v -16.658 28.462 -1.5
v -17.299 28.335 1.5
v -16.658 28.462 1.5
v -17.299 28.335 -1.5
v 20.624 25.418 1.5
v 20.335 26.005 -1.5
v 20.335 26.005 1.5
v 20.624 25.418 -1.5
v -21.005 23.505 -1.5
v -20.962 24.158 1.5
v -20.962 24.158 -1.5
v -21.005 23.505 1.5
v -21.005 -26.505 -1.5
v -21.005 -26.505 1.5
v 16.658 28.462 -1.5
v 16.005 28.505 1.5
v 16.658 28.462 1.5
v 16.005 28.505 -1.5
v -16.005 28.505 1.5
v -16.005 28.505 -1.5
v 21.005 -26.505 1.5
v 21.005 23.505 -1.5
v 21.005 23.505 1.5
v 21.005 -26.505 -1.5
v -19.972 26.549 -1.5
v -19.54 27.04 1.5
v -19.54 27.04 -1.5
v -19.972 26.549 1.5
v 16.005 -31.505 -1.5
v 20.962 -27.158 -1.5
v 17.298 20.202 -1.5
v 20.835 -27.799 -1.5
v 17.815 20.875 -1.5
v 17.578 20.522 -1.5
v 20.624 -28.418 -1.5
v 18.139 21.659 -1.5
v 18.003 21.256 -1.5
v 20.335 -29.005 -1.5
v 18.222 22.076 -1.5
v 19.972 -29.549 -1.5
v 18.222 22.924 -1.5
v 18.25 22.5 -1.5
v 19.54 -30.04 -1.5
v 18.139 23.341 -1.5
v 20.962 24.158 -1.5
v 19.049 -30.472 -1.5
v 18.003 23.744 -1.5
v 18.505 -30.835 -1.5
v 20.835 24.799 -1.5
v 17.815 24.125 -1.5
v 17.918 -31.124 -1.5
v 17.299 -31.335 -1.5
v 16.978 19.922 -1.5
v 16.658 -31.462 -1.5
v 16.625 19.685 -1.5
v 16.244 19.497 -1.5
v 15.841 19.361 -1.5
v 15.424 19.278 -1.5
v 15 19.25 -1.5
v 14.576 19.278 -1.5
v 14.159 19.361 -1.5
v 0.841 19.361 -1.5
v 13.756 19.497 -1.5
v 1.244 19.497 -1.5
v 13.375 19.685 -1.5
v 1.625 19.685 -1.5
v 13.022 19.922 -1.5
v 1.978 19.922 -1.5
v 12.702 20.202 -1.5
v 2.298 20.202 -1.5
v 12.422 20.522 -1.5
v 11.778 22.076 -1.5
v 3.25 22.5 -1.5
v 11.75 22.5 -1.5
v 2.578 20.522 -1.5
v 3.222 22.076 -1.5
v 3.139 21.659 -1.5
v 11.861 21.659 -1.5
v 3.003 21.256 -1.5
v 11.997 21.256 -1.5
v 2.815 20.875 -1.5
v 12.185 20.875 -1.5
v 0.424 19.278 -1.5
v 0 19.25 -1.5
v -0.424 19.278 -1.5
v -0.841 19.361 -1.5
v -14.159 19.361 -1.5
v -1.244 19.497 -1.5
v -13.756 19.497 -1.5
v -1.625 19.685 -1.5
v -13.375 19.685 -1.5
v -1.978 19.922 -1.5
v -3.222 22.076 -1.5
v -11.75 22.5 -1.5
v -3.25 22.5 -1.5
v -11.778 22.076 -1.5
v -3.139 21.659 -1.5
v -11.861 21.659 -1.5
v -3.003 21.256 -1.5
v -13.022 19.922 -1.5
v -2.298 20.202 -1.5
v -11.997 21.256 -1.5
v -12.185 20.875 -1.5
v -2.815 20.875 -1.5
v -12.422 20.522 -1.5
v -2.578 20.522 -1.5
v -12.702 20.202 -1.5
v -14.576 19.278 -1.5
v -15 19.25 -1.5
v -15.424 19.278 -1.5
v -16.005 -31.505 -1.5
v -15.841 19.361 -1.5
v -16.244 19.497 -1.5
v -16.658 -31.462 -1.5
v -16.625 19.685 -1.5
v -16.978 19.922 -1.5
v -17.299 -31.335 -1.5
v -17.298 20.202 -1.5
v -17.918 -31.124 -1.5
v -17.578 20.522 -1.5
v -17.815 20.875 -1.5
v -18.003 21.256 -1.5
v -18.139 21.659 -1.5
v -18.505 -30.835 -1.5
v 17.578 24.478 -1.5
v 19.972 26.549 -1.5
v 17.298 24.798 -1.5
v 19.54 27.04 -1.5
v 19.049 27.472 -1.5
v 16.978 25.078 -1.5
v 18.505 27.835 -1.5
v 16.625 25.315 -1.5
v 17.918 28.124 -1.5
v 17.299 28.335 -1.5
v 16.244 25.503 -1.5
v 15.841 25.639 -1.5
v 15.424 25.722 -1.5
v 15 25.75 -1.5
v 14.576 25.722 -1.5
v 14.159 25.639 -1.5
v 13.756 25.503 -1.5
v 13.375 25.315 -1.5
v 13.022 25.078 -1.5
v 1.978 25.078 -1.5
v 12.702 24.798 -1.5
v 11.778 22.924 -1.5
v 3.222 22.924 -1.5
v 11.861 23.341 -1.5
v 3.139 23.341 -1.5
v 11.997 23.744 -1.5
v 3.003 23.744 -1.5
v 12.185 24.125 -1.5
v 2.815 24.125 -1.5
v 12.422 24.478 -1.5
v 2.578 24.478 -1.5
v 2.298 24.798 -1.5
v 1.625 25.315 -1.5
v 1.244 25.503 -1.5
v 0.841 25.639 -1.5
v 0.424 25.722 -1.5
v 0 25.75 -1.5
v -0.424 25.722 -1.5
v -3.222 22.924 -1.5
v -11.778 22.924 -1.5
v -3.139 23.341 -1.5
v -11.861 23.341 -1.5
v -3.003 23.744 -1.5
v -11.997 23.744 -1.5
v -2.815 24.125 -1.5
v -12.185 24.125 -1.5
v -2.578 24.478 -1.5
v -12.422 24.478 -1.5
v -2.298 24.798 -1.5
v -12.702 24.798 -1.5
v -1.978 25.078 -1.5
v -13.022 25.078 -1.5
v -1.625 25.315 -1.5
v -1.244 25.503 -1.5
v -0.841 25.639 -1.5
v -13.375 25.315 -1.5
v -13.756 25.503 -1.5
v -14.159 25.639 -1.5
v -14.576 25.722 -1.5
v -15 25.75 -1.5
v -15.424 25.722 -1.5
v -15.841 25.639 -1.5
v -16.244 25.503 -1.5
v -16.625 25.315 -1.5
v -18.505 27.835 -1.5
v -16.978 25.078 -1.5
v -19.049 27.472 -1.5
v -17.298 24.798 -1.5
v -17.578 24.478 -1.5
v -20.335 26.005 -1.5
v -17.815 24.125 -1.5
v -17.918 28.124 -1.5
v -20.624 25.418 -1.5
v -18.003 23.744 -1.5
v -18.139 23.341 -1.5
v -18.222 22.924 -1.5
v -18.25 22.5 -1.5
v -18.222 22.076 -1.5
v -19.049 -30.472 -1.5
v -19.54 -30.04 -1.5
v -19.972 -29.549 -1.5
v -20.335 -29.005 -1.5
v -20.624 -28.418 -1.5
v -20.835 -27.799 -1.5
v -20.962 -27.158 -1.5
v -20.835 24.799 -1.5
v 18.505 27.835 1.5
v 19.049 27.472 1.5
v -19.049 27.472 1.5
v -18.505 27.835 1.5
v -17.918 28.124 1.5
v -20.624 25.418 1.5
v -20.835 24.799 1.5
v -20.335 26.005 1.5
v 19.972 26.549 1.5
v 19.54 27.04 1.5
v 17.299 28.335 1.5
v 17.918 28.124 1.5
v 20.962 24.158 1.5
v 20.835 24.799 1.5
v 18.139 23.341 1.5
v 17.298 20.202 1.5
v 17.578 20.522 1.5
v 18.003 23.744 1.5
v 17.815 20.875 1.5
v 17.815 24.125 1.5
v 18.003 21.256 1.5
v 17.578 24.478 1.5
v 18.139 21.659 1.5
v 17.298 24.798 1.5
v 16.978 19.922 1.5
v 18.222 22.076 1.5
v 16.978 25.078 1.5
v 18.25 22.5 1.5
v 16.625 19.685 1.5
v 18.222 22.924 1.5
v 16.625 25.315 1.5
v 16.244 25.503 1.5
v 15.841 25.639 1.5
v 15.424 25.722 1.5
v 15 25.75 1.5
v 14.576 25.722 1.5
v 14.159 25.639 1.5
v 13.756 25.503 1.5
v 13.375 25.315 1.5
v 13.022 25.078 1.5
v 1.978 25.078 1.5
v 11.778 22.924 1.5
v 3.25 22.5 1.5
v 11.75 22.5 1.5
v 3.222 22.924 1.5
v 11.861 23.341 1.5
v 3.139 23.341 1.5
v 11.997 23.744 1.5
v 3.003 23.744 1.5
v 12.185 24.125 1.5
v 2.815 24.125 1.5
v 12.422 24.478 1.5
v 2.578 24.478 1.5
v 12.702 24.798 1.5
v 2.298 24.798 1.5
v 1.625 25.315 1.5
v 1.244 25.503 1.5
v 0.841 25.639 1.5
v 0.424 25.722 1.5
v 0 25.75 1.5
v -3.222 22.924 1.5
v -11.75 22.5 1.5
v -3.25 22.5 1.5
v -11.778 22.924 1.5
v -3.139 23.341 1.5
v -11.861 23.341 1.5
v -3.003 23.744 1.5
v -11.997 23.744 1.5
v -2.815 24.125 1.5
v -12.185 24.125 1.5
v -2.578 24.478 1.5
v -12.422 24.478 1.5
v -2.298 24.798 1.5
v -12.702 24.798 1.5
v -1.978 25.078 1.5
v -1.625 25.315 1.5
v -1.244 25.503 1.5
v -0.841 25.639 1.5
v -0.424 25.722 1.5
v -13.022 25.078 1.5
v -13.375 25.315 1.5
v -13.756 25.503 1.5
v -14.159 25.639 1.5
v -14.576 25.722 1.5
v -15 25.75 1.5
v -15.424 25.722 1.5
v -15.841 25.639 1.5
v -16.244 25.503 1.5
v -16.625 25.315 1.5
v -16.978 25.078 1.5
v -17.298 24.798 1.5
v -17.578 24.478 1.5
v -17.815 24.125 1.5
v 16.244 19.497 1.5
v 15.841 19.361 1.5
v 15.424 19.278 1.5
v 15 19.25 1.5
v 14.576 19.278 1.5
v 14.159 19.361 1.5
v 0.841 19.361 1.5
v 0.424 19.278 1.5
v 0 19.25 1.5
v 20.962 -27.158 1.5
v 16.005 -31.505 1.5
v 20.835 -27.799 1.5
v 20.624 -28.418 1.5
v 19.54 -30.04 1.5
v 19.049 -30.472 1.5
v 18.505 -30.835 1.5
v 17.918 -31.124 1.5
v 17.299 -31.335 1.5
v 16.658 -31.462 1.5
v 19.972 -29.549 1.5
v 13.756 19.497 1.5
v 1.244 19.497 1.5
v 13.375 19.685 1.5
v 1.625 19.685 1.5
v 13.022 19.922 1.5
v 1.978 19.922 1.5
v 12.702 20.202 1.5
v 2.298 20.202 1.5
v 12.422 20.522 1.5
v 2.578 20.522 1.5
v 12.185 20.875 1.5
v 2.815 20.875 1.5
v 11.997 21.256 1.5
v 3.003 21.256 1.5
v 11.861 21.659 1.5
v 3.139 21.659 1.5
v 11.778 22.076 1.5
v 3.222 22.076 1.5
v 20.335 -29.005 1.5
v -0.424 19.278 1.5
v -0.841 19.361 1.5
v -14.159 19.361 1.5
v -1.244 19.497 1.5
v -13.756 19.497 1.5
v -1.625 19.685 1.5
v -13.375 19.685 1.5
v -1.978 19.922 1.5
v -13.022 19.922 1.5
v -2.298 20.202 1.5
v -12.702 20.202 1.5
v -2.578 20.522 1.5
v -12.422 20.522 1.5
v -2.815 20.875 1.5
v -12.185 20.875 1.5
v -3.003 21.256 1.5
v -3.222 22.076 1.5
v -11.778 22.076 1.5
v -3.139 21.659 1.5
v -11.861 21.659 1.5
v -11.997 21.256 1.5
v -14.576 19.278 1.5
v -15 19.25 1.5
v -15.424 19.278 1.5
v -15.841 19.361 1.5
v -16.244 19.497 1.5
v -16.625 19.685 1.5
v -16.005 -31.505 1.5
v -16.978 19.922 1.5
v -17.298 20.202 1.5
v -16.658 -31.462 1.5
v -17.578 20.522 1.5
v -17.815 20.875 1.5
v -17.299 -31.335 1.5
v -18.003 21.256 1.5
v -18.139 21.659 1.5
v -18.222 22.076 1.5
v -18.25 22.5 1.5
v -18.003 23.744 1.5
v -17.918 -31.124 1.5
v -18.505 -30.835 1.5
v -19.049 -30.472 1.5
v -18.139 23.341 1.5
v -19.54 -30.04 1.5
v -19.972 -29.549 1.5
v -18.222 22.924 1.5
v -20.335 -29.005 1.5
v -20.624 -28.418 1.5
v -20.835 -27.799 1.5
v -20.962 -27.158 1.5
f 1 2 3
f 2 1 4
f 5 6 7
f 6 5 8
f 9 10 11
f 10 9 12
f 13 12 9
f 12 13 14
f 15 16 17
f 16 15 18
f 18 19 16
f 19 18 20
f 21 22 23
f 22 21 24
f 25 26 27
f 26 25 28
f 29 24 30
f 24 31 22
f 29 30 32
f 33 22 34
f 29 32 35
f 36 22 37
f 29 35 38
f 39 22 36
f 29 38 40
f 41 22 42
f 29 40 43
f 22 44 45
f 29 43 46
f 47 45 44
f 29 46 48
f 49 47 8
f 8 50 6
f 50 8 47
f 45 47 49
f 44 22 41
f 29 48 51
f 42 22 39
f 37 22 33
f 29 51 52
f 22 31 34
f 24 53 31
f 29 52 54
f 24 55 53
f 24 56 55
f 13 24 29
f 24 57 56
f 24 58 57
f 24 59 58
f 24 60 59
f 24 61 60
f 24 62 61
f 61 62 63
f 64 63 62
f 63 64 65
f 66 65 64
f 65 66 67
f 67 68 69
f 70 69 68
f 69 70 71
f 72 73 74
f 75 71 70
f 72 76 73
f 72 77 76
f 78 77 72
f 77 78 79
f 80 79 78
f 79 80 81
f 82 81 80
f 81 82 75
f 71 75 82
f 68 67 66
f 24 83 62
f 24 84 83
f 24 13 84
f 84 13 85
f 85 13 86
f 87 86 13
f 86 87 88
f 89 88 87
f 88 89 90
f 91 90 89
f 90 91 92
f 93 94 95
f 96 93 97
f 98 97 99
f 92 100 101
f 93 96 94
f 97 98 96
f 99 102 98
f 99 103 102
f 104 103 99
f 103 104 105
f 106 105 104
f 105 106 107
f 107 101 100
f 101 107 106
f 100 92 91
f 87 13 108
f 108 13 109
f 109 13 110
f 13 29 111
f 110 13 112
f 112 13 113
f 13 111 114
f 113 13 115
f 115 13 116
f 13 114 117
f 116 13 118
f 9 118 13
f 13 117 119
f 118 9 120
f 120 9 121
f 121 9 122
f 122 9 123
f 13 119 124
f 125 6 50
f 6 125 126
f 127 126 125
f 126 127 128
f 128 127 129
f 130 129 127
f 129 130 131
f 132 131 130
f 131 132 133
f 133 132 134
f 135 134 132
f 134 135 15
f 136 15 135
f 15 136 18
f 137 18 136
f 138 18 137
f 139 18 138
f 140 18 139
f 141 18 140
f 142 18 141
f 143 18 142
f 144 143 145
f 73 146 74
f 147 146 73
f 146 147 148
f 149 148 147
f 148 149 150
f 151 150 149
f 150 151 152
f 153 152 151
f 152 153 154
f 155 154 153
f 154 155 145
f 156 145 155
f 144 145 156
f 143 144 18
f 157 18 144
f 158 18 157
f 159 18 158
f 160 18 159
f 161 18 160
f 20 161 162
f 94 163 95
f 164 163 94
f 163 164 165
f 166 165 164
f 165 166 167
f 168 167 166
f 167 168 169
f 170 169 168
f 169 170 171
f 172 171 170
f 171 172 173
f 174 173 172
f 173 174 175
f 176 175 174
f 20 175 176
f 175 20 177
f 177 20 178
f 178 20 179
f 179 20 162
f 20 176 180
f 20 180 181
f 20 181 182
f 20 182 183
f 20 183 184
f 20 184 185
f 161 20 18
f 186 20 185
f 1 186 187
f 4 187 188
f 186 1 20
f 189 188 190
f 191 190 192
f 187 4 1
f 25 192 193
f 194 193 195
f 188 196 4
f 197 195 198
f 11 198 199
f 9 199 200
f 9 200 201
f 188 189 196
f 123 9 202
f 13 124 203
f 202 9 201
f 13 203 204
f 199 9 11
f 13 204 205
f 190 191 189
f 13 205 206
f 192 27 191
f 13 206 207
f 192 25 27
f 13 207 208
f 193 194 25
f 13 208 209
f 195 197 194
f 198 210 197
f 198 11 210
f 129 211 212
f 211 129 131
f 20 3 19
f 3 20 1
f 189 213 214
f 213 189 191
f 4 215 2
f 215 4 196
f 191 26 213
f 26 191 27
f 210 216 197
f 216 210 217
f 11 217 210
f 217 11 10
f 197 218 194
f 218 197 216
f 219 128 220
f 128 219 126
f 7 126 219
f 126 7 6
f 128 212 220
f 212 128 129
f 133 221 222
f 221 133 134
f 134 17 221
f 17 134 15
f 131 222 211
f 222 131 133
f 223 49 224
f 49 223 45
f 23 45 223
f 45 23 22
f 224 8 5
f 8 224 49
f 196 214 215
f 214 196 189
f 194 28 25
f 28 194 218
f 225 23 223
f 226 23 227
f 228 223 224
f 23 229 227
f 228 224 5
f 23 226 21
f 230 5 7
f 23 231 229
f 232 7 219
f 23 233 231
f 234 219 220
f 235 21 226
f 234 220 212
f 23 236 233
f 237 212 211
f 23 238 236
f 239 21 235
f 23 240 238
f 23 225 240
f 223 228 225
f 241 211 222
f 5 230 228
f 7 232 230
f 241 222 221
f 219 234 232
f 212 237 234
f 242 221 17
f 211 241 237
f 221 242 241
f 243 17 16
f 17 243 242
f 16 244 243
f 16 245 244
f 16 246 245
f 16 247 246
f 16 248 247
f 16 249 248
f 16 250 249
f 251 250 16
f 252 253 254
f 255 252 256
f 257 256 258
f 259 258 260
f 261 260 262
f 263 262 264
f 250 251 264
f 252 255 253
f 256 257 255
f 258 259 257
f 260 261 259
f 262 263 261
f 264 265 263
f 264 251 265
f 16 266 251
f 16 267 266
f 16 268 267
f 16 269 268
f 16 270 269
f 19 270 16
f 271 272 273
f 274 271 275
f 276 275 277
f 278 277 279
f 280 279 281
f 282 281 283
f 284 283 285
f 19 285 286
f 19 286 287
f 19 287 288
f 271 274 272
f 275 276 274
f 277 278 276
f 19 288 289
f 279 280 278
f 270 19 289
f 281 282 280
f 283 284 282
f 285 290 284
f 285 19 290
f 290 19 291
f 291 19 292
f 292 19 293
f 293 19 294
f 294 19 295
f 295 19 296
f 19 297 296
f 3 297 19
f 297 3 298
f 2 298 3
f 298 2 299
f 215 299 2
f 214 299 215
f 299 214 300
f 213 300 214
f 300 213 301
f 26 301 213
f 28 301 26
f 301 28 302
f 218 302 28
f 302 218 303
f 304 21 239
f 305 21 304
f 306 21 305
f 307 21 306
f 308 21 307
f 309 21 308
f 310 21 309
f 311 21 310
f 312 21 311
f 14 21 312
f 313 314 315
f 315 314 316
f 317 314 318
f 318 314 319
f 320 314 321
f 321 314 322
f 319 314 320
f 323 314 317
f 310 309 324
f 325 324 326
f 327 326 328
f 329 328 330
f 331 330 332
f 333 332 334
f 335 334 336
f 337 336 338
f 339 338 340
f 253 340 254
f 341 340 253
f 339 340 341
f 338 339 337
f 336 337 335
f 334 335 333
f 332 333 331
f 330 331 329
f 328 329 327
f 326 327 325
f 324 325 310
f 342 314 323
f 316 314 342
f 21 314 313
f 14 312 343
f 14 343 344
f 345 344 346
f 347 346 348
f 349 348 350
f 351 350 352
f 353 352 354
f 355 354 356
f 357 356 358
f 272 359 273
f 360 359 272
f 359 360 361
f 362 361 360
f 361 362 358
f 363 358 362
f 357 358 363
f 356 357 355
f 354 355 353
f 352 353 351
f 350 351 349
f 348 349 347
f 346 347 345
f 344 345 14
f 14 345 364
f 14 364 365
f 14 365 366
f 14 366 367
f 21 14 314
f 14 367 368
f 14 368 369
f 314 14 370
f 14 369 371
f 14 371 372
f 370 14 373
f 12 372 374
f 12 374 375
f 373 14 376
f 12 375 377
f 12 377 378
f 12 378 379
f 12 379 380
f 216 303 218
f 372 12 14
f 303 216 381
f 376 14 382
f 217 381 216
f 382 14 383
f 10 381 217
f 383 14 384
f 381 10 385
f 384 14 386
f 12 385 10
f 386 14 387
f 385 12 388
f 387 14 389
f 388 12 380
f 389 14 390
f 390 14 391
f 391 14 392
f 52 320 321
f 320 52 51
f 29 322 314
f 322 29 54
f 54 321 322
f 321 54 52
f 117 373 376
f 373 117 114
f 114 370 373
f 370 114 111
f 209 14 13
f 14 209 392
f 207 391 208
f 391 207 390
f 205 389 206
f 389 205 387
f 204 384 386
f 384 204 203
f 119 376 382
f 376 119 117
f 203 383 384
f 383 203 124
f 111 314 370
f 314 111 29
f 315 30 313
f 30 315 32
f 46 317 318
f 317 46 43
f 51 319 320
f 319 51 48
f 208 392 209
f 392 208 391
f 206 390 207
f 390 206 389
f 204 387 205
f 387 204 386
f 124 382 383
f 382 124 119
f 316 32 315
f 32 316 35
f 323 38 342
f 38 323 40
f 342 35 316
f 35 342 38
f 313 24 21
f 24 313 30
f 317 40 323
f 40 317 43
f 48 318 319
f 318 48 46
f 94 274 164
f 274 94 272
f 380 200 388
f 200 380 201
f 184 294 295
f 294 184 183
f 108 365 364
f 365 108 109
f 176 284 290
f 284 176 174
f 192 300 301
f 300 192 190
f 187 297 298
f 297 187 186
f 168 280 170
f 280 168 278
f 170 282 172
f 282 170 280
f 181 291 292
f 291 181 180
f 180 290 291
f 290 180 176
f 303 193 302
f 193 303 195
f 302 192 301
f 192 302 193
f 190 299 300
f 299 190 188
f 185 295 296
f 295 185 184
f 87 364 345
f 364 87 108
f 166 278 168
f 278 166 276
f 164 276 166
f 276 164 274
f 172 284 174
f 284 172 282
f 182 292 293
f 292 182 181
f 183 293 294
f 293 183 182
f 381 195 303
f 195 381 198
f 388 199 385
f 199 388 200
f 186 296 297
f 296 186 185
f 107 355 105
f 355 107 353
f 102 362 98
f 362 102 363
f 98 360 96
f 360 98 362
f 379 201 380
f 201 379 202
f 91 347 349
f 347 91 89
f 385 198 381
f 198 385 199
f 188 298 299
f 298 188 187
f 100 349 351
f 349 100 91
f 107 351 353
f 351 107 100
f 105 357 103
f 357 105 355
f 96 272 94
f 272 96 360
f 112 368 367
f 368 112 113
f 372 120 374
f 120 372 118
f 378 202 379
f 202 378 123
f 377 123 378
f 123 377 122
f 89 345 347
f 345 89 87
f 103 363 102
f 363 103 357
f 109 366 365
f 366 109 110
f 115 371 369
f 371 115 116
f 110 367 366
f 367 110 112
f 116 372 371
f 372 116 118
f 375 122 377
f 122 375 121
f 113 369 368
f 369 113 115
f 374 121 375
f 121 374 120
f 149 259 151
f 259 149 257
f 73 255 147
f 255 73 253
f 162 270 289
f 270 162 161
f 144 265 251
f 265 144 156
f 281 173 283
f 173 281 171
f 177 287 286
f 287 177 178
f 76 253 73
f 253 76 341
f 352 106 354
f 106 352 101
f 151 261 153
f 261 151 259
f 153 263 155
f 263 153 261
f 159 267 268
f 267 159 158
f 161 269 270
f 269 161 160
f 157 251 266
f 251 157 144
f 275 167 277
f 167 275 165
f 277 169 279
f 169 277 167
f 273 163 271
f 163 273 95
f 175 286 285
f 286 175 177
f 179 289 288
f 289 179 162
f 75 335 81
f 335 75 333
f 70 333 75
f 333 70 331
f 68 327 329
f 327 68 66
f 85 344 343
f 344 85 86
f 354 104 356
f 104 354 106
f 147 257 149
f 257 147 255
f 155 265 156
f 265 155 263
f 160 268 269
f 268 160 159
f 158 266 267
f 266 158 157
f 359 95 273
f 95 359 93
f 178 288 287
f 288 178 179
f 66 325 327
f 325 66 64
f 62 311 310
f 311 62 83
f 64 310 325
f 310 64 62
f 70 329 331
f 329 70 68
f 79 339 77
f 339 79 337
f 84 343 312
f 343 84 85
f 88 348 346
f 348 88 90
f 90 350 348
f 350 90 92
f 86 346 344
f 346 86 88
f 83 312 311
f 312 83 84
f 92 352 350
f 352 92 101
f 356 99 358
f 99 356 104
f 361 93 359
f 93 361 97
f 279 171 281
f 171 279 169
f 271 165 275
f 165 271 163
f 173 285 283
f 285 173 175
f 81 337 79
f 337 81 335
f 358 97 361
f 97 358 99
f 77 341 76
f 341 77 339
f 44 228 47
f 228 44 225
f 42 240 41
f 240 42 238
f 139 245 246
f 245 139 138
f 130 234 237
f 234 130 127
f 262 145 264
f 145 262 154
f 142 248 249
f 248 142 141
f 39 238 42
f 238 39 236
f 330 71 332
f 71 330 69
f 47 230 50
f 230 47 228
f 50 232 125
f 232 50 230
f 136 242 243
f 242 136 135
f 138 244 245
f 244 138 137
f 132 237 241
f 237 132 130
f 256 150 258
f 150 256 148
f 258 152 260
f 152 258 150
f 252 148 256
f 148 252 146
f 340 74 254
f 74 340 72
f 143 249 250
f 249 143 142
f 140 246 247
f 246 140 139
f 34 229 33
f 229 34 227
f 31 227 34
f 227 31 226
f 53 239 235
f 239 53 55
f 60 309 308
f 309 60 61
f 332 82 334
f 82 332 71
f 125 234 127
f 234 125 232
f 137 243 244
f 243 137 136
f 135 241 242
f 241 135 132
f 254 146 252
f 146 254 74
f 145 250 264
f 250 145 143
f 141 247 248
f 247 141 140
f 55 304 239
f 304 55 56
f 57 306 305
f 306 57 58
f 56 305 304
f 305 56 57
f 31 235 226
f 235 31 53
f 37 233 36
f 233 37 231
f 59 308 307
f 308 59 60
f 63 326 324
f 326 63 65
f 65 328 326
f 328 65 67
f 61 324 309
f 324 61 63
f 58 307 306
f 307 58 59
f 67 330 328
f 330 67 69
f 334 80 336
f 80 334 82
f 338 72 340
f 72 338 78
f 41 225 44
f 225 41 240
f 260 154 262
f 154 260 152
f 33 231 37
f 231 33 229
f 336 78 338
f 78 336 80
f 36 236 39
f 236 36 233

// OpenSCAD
// Generated by SolidPython 1.1.3 on 2022-09-15 14:54:10
$fn = 48;


difference() {
	union() {
		color(alpha = 1.0000000000, c = "Gold") {
			translate(v = [0, 0, 1.5000000000]) {
				rotate(a = [0, 0, 0]) {
					translate(v = [0, 0, -3]) {
						linear_extrude(height = 3) {
							offset(r = 5) {
								square(center = true, size = [32.0100000000, 47.0100000000]);
							}
						}
					}
				}
			}
		}
		color(alpha = 1.0000000000, c = "Gold") {
			translate(v = [0, -3, 1.5000000000]) {
				rotate(a = [0, 0, 0]) {
					translate(v = [0, 0, -3]) {
						linear_extrude(height = 3) {
							offset(r = 5) {
								square(center = true, size = [32.0100000000, 47.0100000000]);
							}
						}
					}
				}
			}
		}
	}
	union() {
		color(alpha = 1.0000000000, c = "Gold") {
			translate(v = [-15.0000000000, 22.5000000000, 0]) {
				rotate(a = [0, 0, 0]) {
					translate(v = [0, 0, -250]) {
						cylinder(h = 500, r = 3.2500000000);
					}
				}
			}
		}
		color(alpha = 1.0000000000, c = "Gold") {
			translate(v = [0.0000000000, 22.5000000000, 0]) {
				rotate(a = [0, 0, 0]) {
					translate(v = [0, 0, -250]) {
						cylinder(h = 500, r = 3.2500000000);
					}
				}
			}
		}
		color(alpha = 1.0000000000, c = "Gold") {
			translate(v = [15.0000000000, 22.5000000000, 0]) {
				rotate(a = [0, 0, 0]) {
					translate(v = [0, 0, -250]) {
						cylinder(h = 500, r = 3.2500000000);
					}
				}
			}
		}
	}
}
/***********************************************
*********      SolidPython code:      **********
************************************************
 
import subprocess

from solid.objects import *
from solid import scad_render_to_file, scad_render

import math

import os

##################################################################################################################################################
##################################################################################################################################################
##################################################################################################################################################
##################################################################################################################################################
######  DIMENSION STUFF
##################################################################################################################################################
##################################################################################################################################################
##################################################################################################################################################
##################################################################################################################################################


mode = "3DPR"
#mode = "LAZE"
#mode = "TURE"
#mode = ""


######  Countersunk
countersunkM = []
WIDTH = 0
DEPTH = 1
countersunkM1width = 0; countersunkM1depth = 0; countersunkM2width = 0; countersunkM2depth = 0
countersunkM3width = 0
countersunkM3depth = 0
countersunkM4width = 0
countersunkM4depth = 0
countersunkM5width = 0
countersunkM5depth = 0
countersunkM6width = 0
countersunkM6depth = 0

######  Holes
holeM = []
holeM1 = 0
holeM2 = 0
holeM3 = 0
holeM4 = 0
holeM5 = 0
holeM6 = 0

######  Nuts
nutM = []
NUTWIDTH = 0
NUTDEPTH = 1
nutM1width = 0
nutM1depth = 0
nutM2width = 0
nutM2depth = 0
nutM3width = 0
nutM3depth = 0
nutM4width = 0
nutM4depth = 0
nutM5width = 0
nutM5depth = 0
nutM6width = 0
nutM6depth = 0

######  OOEB
ooebPinWidth = 0
ooebPinWidthWide = 0


######  Colors
colDefault = "Gold"

colOOEBbase = colDefault

colLEDRed = "red"
colWire = "gray"
    ######  Resistor
colRes = list()
colResistor = "beige"

colResBlack = "black"
colRes.append(colResBlack)
colResBrown = "brown"
colRes.append(colResBrown)
colResRed = "red"
colRes.append(colResRed)
colResOrange = "orange"
colRes.append(colResOrange)
colResYellow = "yellow"
colRes.append(colResYellow)
colResGreen = "green"
colRes.append(colResGreen)
colResBlue = "blue"
colRes.append(colResBlue)
colResPurple = "purple"
colRes.append(colResPurple)
colResGray = "gray"
colRes.append(colResGray)
colResWhite = "white"
colRes.append(colResWhite)





def changeMode(m="3DPR"):
    #print("####################################################      CHANGING MODES TO: " + m)
    global mode
    mode = m
    ######  Countersunk
    global countersunkM, countersunkM1width, countersunkM1depth, countersunkM2width, countersunkM2depth, countersunkM3width, countersunkM3depth, countersunkM4width, countersunkM4depth, countersunkM5width, countersunkM5depth, countersunkM6width, countersunkM6depth
    countersunkM = []
    countersunkM.append([0,0])
    countersunkM1width = 0 if mode== "3DPR" else 0
    countersunkM1depth = 0 if mode== "3DPR" else 0
    countersunkM.append([countersunkM1width,countersunkM1depth])
    countersunkM2width = 0 if mode== "3DPR" else 0
    countersunkM2depth = 0 if mode== "3DPR" else 0
    countersunkM.append([countersunkM2width,countersunkM2depth])
    countersunkM3width = 5.5/2+0.6 if mode== "3DPR" else 5.5/2
    countersunkM3depth = 1.7 if mode== "3DPR" else 1.7
    countersunkM.append([countersunkM3width,countersunkM3depth])
    countersunkM4width = 0 if mode== "3DPR" else 0
    countersunkM4depth = 0 if mode== "3DPR" else 0
    countersunkM.append([countersunkM4width,countersunkM4depth])
    countersunkM5width = 0 if mode== "3DPR" else 0
    countersunkM5depth = 0 if mode== "3DPR" else 0
    countersunkM.append([countersunkM5width,countersunkM5depth])
    countersunkM6width = 0 if mode== "3DPR" else 0
    countersunkM6depth = 0 if mode== "3DPR" else 0
    countersunkM.append([countersunkM6width,countersunkM6depth])
    ######  Holes
    global holeM, holeM1, holeM2, holeM3, holeM4, holeM5, holeM6, holeM7, holeM8
    holeM = []
    holeM1 = 1.2/2 if mode== "3DPR" else 1/2
    holeM2 = 2.3/2 if mode== "3DPR" else 2/2
    holeM3 = 3.4/2 if mode== "3DPR" else 3/2
    holeM4 = 4.4/2 if mode== "3DPR" else 4/2
    holeM5 = 5.4/2 if mode== "3DPR" else 5/2
    holeM6 = 6.5/2 if mode== "3DPR" else 6/2
    holeM7 = 7.5/2 if mode== "3DPR" else 7/2
    holeM8 = 8.6/2 if mode== "3DPR" else 8/2
    holeM.append(0)
    holeM.append(holeM1)
    holeM.append(holeM2)
    holeM.append(holeM3)
    holeM.append(holeM4)
    holeM.append(holeM5)
    holeM.append(holeM6)
    holeM.append(holeM7)
    holeM.append(holeM8)
    #####  Nuts
    global nutM, nutM1width, nutM1depth, nutM2width, nutM2depth, nutM3width, nutM3depth, nutM4width, nutM4depth, nutM5width, nutM5depth, nutM6width, nutM6depth
    nutM = []
    nutM.append([0,0]) 
    #M1 Nut
    nutM1width = 0
    nutM1depth = 0
    nutM.append([nutM1width,nutM1depth])    
    #M2 Nut
    nutM2width = 0
    nutM2depth = 0
    nutM.append([nutM2width,nutM2depth])    
    #M3 Nut
    #nutM3width = 6.05 if mode== "3DPR" else 5.5
    nutM3width = 6.05 * 1.154 if mode== "3DPR" else 5.5 * 1.154
    nutM3depth = 2.5 if mode== "3DPR" else 2.5
    nutM.append([nutM3width,nutM3depth])    
    #M4 Nut
    nutM4width = 0
    nutM4depth = 0
    nutM.append([nutM4width,nutM4depth])    
    #M5 Nut
    nutM5width = 0
    nutM5depth = 0
    nutM.append([nutM5width,nutM5depth])    
    #M6 Nut
    nutM6width = 11 if mode== "3DPR" else 10
    nutM6depth = 5 if mode== "3DPR" else 5
    nutM.append([nutM6width,nutM6depth])    

    ######  OOEB
    global ooebPinWidth,  ooebPinWidthWide

    ooebPinWidth = 0.6
    if(mode=="3DPR" or mode=="LAZE"):
        ooebPinWidth = 0.6 + 0.6
    ooebPinWidthWide = 1.2
    if(mode=="3DPR" or mode=="LAZE"):
        ooebPinWidthWide = 1.2 + 0.6


changeMode()


""""    
holeM12D = s=="3DPR" ? 1.4/2 : 1.2/2;
holeM16D = s=="3DPR" ? 1.8/2 : 1.6/2;
holeM2 = s=="3DPR" ? 2.3/2 : 2/2;
holeM25D = s=="3DPR" ? 2.8/2 : 2.5/2;
holeM27D = s=="3DPR" ? 3.1/2 : 2.7/2;    
holeM3 = s=="3DPR" ? 3.4/2 : 3/2;
holeM35D = s=="3DPR" ? 3.9/2 : 35/2;
holeM4 = s=="3DPR" ? 4.4/2 : 4/2;
holeM5 = s=="3DPR" ? 5.4/2 : 5/2;
holeM6 = s=="3DPR" ? 6.5/2 : 6/2;
holeM6Minus = s=="3DPR" ? 5.8/2 : 5.9/2;
holeM7 = s=="3DPR" ? 7.5/2 : 7/2;
holeM8 = s=="3DPR" ? 8.6/2 : 8/2;
holeM9 = s=="3DPR" ? 9.6/2 : 9/2;
holeM10 = s=="3DPR" ? 10.6/2 : 10/2;
holeM11 = s=="3DPR" ? 11.6/2 : 11/2;
holeM12 = s=="3DPR" ? 12.6/2 : 12/2;
holeM13 = s=="3DPR" ? 13.6/2 : 13/2;
holeM14 = s=="3DPR" ? 14.6/2 : 14/2;
holeM15 = s=="3DPR" ? 15.6/2 : 15/2;
holeM16 = s=="3DPR" ? 16.6/2 : 16/2;
holeM17 = s=="3DPR" ? 17.6/2 : 17/2;
holeM18 = s=="3DPR" ? 18.6/2 : 18/2;
holeM19 = s=="3DPR" ? 19.6/2 : 19/2;
holeM20 = s=="3DPR" ? 20.6/2 : 20/2;
"""

##################################################################################################################################################
##################################################################################################################################################
##################################################################################################################################################
##################################################################################################################################################
######  REGULAR STUFF
##################################################################################################################################################
##################################################################################################################################################
##################################################################################################################################################
##################################################################################################################################################


def setMode(mode="3DPR"):
    changeMode(mode)

def getMode():
    return mode



def saveToScad(fileName, parts):
    dir =  os.path.dirname(os.path.abspath(fileName))
    Path(dir).mkdir(parents=True, exist_ok=True)
    file_out = scad_render_to_file(parts, fileName, file_header=f'$fn = 48;')


def saveToDxf(fileIn, fileOut=""):
    if fileOut == "":
        fileOut = fileIn.replace(".scad",".dxf")
    saveToFile(fileIn, fileOut)
    
def saveToPng(fileIn, fileOut="",extra="--render"):
    if fileOut == "":
        fileOut = fileIn.replace(".scad",".png")
    saveToFile(fileIn, fileOut)

def saveToStl(fileIn, fileOut=""):
    if fileOut == "":
        fileOut = fileIn.replace(".scad",".stl")
    saveToFile(fileIn, fileOut)
    
def saveToSvg(fileIn, fileOut=""):
    if fileOut == "":
        fileOut = fileIn.replace(".scad",".svg")
    saveToFile(fileIn, fileOut)

def saveToFile(fileIn, fileOut,extra=""):
    extra = extra + " --colorscheme Tomorrow"

    launchStr = 'openscad -o "' + fileOut + '"' + extra + ' "' + fileIn + '"'
    if ".png" in fileOut:
        launchStr = launchStr + " --render"
    print("            saveToFile launch string: " + launchStr)
    subprocess.run(launchStr)
    x=0



def insert(item,pos=[None,None,None],x=0,y=0,z=0,ex=0,size=[None,None,None],length=0,rot=[None,None,None],rotX=0,rotY=0,rotZ=0,width=0,height=0,depth=100,rad=0,rad2=0,color=colDefault,alpha=1,OOwidth=0,OOheight=0,holes=True,negative=True, name="",m=""):
    return OPSCInsert(item,pos,x,y,z,ex,size,length,rot,rotX,rotY,rotZ,width,height,depth,rad,rad2,color,alpha,OOwidth,OOheight,holes,negative,name,m=m)


def OPSCInsert(item,pos=[None,None,None],x=0,y=0,z=0,ex=0,size=[None,None,None],length=0,rot=[None,None,None],rotX=0,rotY=0,rotZ=0,width=0,height=0,depth=100,rad=0,rad2=0,col=colDefault,alpha=1,OOwidth=0,OOheight=0,holes=True,negative=True, name="",m=""):
    
    """
        color(color,alpha){
            translate([x,y,z]){
                    rotate([rotX,rotY,rotZ]){
    """
    returnValue = ""

    #print(pos)

    if pos[0] != None:
        x=pos[0]
        y=pos[1]
        z=pos[2]
    if rot[0] != None:
        rotX=rot[0]
        rotY=rot[1]
        rotZ=rot[2]
    
    returnValue = color(col)(translate((x,y,z))(
                            rotate((rotX,rotY,rotZ))(
                                OPSCInsertIf(item,pos,x,y,z,ex,size,length,rot,rotX,rotY,rotZ,width,height,depth,rad,rad2,col,alpha,OOwidth,OOheight,holes,negative,name,m=m)
                            )
                        ))
                
    

    return returnValue

def OPSCInsertIf(item,pos=[None,None,None],x=0,y=0,z=0,ex=0,size=[None,None,None],length=0,rot=[None,None,None],rotX=0,rotY=0,rotZ=0,width=0,height=0,depth=100,rad=0,rad2=0,color=colDefault,alpha=1,OOwidth=0,OOheight=0,holes=True,negative=True, name="",m=""):
    returnValue = cube([10,10,10])

    if size[0] != None:
        width=size[0]
        height=size[1]
        depth=size[2]

    #print("    OPSCInsert item:" + str(item) + " at:[" + str(x) + "," + str(y) + "," + str(z) + "] size: [" + str(width) + "," + str(height) + "," + str(depth) + "]")

    if(item=="cube"):
        returnValue =  translate([0,0,-depth/2])(cube([width,height,depth],center=True).set_modifier(m))
    elif(item=="cylinder"):        
        returnValue = translate([0,0,-depth/2])(cylinder(r=rad,h=depth,center=True).set_modifier(m))
    elif(item=="sphere"):        
        returnValue = translate([0,0,-rad])(sphere(r=rad).set_modifier(m))
    elif(item=="plane"):
        if depth == 100:
            returnValue = insert("cube",size=[1000,1000,0.1],color=color).set_modifier(m)            
        else:
            returnValue = insert("cube",size=[1000,1000,depth],color=color).set_modifier(m)                        
    elif(item=="cubeRounded"):
        if(rad == 0):
                            rad = 5
        returnValue =  translate([0,0,-depth])(
                        linear_extrude(height=depth)(                        
                            offset(r=rad)(
                                square((width-rad*2+.01,height-rad*2+.01),center=True).set_modifier(m)
                                )
                            )
        )
    ######  Countersunk
    elif(item == "countersunkM1" or item == "csM1" ):
        returnValue = OSPCgetCountersunk(rad=1,m=m)
    elif(item == "countersunkM2" or item == "csM2" ):
        returnValue = OSPCgetCountersunk(rad=2,m=m)
    elif(item == "countersunkM3" or item == "csM3" ):
        returnValue = OSPCgetCountersunk(rad=3,m=m)
    elif(item == "countersunkM4" or item == "csM4" ):
        returnValue = OSPCgetCountersunk(rad=4,m=m)
    elif(item == "countersunkM5" or item == "csM5" ):
        returnValue = OSPCgetCountersunk(rad=5,m=m)
    elif(item == "countersunkM6" or item == "csM6" ):
        returnValue = OSPCgetCountersunk(rad=6,m=m)
    elif(item == "countersunk" or item == "cs"):
        returnValue = OSPCgetCountersunk(rad=rad,m=m)


    ######  Holes    
    elif(item == "holeM1"):
        returnValue = OSPCgetHole(rad=1,m=m)
    elif(item == "holeM2"):
        returnValue = OSPCgetHole(rad=2,m=m)
    elif(item == "holeM3"):
        returnValue = OSPCgetHole(rad=3,m=m)
    elif(item == "holeM4"):
        returnValue = OSPCgetHole(rad=4,m=m)
    elif(item == "holeM5"):
        returnValue = OSPCgetHole(rad=5,m=m)
    elif(item == "holeM6"):
        returnValue = OSPCgetHole(rad=6,m=m)
    elif(item == "holeM7"):
        returnValue = OSPCgetHole(rad=7,m=m)
    elif(item == "holeM8"):
        returnValue = OSPCgetHole(rad=8,m=m)
    elif(item == "hole"):
        returnValue = OSPCgetHole(rad=rad,m=m)

    ######  Nuts
    elif(item == "nutM1"):
        returnValue = OSPCgetNut(rad=1,depth=depth,m=m)
    elif(item == "nutM2"):
        returnValue = OSPCgetNut(rad=2,depth=depth,m=m)
    elif(item == "nutM3"):
        returnValue = OSPCgetNut(rad=3,depth=depth,m=m)
    elif(item == "nutM4"):
        returnValue = OSPCgetNut(rad=4,depth=depth,m=m)
    elif(item == "nutM5"):
        returnValue = OSPCgetNut(rad=5,depth=depth,m=m)
    elif(item == "nutM6"):
        returnValue = OSPCgetNut(rad=6,depth=depth,m=m)
    elif(item == "nut"):
        returnValue = OSPCgetNut(rad=rad,depth=depth,m=m)
    return returnValue

                

def OSPCgetHole(rad,m=""):
    return translate([0,0,-250])(cylinder(r=holeM[rad],h=500).set_modifier(m))

def OSPCgetNut(rad,depth,m=""):
    depth = nutM[rad][NUTDEPTH] if depth==100 else depth
    returnValue = OPSChexagon(nutM[rad][NUTWIDTH],depth=depth,m=m)
    return returnValue

def OSPCgetCountersunk(rad,m=""):
    depth=countersunkM[rad][DEPTH]
    returnValue = translate([0,0,-depth])(cylinder(h=depth,r2=countersunkM[rad][WIDTH],r1=holeM[rad])).set_modifier(m)
    return returnValue

def OPSChexagon(width,depth,m=""):
    angles = []
    for a in range(0,6):
        angles.append((a*360/6)+30)
    points = []
    for angle in angles:
        x = math.cos((math.pi/180)*angle)*(width/2)
        y = math.sin((math.pi/180)*angle)*(width/2)
        points.append([x,y])

        rv = polygon(points)
        rv = linear_extrude(height=depth)(rv)
        rv = translate([0,0,-depth])(rv)
        rv = rv.set_modifier(m)

    return rv

def OPSChexagonOld(width,depth,m=""):
    cutter = item()
    wid=width*2
    cutter.addPos(insert("cube",pos=[wid/2+width/2,0,0],size=[wid,wid,depth]))
    cutter.addPos(insert("cube",pos=[-wid/2-width/2,0,0],size=[wid,wid,depth]))

    cut = cutter.getPart()
    #print(depth)
    returnValue = difference()(
        translate([0,0,-depth/2])(cube([wid,wid,depth],center=True)),
        cut,
        rotate([0,0,60])(cut),
        rotate([0,0,-60])(cut)
    ).set_modifier(m)

    return returnValue

class item:

    def __init__(self):
        self.posItems=list()
        self.negItems=list()

    def isEmpty(self):        
        testString = scad_render(self.getPart())
        #print("test String length: " + str(len(testString)))
        returnValue = False
        if len(testString) == 270:            
            returnValue = True
        return returnValue

    def addPos(self,part):
        self.posItems.append(part)
    def addNeg(self,part):
        self.negItems.append(part)

    def getPart(self):
        returnValue = difference()(
            union()(self.posItems),
            union()(self.negItems)
        )
        return returnValue

    def getLaser(self,start=0,layers=1,thickness=-3,tileDif=200):
        rv= []

        for x in range(layers):
            rv.append(translate([0,x*tileDif,0])(
                    projection()(
                        intersection()(
                            insert("plane",z=start+x*thickness),
                            self.getPart()
                        )
                    )
            )
            )
        return union()(rv)

    def getSplit(self,start=0,depth=6,tileDif=200):
        rv= []

        rv.append(translate([0,0,0])(
            intersection()(
                insert("cube",size=[100,100,depth],z=start),
                self.getPart()
            )
        )
        )

        rv.append(translate([0,0,depth])(rotate([180,0,0])(translate([0,tileDif,depth])(
            intersection()(
                insert("cube",size=[100,100,depth],z=start-depth),
                self.getPart()
            )
        )
        )
        )
        )        
        return union()(rv)


 
 
************************************************/
